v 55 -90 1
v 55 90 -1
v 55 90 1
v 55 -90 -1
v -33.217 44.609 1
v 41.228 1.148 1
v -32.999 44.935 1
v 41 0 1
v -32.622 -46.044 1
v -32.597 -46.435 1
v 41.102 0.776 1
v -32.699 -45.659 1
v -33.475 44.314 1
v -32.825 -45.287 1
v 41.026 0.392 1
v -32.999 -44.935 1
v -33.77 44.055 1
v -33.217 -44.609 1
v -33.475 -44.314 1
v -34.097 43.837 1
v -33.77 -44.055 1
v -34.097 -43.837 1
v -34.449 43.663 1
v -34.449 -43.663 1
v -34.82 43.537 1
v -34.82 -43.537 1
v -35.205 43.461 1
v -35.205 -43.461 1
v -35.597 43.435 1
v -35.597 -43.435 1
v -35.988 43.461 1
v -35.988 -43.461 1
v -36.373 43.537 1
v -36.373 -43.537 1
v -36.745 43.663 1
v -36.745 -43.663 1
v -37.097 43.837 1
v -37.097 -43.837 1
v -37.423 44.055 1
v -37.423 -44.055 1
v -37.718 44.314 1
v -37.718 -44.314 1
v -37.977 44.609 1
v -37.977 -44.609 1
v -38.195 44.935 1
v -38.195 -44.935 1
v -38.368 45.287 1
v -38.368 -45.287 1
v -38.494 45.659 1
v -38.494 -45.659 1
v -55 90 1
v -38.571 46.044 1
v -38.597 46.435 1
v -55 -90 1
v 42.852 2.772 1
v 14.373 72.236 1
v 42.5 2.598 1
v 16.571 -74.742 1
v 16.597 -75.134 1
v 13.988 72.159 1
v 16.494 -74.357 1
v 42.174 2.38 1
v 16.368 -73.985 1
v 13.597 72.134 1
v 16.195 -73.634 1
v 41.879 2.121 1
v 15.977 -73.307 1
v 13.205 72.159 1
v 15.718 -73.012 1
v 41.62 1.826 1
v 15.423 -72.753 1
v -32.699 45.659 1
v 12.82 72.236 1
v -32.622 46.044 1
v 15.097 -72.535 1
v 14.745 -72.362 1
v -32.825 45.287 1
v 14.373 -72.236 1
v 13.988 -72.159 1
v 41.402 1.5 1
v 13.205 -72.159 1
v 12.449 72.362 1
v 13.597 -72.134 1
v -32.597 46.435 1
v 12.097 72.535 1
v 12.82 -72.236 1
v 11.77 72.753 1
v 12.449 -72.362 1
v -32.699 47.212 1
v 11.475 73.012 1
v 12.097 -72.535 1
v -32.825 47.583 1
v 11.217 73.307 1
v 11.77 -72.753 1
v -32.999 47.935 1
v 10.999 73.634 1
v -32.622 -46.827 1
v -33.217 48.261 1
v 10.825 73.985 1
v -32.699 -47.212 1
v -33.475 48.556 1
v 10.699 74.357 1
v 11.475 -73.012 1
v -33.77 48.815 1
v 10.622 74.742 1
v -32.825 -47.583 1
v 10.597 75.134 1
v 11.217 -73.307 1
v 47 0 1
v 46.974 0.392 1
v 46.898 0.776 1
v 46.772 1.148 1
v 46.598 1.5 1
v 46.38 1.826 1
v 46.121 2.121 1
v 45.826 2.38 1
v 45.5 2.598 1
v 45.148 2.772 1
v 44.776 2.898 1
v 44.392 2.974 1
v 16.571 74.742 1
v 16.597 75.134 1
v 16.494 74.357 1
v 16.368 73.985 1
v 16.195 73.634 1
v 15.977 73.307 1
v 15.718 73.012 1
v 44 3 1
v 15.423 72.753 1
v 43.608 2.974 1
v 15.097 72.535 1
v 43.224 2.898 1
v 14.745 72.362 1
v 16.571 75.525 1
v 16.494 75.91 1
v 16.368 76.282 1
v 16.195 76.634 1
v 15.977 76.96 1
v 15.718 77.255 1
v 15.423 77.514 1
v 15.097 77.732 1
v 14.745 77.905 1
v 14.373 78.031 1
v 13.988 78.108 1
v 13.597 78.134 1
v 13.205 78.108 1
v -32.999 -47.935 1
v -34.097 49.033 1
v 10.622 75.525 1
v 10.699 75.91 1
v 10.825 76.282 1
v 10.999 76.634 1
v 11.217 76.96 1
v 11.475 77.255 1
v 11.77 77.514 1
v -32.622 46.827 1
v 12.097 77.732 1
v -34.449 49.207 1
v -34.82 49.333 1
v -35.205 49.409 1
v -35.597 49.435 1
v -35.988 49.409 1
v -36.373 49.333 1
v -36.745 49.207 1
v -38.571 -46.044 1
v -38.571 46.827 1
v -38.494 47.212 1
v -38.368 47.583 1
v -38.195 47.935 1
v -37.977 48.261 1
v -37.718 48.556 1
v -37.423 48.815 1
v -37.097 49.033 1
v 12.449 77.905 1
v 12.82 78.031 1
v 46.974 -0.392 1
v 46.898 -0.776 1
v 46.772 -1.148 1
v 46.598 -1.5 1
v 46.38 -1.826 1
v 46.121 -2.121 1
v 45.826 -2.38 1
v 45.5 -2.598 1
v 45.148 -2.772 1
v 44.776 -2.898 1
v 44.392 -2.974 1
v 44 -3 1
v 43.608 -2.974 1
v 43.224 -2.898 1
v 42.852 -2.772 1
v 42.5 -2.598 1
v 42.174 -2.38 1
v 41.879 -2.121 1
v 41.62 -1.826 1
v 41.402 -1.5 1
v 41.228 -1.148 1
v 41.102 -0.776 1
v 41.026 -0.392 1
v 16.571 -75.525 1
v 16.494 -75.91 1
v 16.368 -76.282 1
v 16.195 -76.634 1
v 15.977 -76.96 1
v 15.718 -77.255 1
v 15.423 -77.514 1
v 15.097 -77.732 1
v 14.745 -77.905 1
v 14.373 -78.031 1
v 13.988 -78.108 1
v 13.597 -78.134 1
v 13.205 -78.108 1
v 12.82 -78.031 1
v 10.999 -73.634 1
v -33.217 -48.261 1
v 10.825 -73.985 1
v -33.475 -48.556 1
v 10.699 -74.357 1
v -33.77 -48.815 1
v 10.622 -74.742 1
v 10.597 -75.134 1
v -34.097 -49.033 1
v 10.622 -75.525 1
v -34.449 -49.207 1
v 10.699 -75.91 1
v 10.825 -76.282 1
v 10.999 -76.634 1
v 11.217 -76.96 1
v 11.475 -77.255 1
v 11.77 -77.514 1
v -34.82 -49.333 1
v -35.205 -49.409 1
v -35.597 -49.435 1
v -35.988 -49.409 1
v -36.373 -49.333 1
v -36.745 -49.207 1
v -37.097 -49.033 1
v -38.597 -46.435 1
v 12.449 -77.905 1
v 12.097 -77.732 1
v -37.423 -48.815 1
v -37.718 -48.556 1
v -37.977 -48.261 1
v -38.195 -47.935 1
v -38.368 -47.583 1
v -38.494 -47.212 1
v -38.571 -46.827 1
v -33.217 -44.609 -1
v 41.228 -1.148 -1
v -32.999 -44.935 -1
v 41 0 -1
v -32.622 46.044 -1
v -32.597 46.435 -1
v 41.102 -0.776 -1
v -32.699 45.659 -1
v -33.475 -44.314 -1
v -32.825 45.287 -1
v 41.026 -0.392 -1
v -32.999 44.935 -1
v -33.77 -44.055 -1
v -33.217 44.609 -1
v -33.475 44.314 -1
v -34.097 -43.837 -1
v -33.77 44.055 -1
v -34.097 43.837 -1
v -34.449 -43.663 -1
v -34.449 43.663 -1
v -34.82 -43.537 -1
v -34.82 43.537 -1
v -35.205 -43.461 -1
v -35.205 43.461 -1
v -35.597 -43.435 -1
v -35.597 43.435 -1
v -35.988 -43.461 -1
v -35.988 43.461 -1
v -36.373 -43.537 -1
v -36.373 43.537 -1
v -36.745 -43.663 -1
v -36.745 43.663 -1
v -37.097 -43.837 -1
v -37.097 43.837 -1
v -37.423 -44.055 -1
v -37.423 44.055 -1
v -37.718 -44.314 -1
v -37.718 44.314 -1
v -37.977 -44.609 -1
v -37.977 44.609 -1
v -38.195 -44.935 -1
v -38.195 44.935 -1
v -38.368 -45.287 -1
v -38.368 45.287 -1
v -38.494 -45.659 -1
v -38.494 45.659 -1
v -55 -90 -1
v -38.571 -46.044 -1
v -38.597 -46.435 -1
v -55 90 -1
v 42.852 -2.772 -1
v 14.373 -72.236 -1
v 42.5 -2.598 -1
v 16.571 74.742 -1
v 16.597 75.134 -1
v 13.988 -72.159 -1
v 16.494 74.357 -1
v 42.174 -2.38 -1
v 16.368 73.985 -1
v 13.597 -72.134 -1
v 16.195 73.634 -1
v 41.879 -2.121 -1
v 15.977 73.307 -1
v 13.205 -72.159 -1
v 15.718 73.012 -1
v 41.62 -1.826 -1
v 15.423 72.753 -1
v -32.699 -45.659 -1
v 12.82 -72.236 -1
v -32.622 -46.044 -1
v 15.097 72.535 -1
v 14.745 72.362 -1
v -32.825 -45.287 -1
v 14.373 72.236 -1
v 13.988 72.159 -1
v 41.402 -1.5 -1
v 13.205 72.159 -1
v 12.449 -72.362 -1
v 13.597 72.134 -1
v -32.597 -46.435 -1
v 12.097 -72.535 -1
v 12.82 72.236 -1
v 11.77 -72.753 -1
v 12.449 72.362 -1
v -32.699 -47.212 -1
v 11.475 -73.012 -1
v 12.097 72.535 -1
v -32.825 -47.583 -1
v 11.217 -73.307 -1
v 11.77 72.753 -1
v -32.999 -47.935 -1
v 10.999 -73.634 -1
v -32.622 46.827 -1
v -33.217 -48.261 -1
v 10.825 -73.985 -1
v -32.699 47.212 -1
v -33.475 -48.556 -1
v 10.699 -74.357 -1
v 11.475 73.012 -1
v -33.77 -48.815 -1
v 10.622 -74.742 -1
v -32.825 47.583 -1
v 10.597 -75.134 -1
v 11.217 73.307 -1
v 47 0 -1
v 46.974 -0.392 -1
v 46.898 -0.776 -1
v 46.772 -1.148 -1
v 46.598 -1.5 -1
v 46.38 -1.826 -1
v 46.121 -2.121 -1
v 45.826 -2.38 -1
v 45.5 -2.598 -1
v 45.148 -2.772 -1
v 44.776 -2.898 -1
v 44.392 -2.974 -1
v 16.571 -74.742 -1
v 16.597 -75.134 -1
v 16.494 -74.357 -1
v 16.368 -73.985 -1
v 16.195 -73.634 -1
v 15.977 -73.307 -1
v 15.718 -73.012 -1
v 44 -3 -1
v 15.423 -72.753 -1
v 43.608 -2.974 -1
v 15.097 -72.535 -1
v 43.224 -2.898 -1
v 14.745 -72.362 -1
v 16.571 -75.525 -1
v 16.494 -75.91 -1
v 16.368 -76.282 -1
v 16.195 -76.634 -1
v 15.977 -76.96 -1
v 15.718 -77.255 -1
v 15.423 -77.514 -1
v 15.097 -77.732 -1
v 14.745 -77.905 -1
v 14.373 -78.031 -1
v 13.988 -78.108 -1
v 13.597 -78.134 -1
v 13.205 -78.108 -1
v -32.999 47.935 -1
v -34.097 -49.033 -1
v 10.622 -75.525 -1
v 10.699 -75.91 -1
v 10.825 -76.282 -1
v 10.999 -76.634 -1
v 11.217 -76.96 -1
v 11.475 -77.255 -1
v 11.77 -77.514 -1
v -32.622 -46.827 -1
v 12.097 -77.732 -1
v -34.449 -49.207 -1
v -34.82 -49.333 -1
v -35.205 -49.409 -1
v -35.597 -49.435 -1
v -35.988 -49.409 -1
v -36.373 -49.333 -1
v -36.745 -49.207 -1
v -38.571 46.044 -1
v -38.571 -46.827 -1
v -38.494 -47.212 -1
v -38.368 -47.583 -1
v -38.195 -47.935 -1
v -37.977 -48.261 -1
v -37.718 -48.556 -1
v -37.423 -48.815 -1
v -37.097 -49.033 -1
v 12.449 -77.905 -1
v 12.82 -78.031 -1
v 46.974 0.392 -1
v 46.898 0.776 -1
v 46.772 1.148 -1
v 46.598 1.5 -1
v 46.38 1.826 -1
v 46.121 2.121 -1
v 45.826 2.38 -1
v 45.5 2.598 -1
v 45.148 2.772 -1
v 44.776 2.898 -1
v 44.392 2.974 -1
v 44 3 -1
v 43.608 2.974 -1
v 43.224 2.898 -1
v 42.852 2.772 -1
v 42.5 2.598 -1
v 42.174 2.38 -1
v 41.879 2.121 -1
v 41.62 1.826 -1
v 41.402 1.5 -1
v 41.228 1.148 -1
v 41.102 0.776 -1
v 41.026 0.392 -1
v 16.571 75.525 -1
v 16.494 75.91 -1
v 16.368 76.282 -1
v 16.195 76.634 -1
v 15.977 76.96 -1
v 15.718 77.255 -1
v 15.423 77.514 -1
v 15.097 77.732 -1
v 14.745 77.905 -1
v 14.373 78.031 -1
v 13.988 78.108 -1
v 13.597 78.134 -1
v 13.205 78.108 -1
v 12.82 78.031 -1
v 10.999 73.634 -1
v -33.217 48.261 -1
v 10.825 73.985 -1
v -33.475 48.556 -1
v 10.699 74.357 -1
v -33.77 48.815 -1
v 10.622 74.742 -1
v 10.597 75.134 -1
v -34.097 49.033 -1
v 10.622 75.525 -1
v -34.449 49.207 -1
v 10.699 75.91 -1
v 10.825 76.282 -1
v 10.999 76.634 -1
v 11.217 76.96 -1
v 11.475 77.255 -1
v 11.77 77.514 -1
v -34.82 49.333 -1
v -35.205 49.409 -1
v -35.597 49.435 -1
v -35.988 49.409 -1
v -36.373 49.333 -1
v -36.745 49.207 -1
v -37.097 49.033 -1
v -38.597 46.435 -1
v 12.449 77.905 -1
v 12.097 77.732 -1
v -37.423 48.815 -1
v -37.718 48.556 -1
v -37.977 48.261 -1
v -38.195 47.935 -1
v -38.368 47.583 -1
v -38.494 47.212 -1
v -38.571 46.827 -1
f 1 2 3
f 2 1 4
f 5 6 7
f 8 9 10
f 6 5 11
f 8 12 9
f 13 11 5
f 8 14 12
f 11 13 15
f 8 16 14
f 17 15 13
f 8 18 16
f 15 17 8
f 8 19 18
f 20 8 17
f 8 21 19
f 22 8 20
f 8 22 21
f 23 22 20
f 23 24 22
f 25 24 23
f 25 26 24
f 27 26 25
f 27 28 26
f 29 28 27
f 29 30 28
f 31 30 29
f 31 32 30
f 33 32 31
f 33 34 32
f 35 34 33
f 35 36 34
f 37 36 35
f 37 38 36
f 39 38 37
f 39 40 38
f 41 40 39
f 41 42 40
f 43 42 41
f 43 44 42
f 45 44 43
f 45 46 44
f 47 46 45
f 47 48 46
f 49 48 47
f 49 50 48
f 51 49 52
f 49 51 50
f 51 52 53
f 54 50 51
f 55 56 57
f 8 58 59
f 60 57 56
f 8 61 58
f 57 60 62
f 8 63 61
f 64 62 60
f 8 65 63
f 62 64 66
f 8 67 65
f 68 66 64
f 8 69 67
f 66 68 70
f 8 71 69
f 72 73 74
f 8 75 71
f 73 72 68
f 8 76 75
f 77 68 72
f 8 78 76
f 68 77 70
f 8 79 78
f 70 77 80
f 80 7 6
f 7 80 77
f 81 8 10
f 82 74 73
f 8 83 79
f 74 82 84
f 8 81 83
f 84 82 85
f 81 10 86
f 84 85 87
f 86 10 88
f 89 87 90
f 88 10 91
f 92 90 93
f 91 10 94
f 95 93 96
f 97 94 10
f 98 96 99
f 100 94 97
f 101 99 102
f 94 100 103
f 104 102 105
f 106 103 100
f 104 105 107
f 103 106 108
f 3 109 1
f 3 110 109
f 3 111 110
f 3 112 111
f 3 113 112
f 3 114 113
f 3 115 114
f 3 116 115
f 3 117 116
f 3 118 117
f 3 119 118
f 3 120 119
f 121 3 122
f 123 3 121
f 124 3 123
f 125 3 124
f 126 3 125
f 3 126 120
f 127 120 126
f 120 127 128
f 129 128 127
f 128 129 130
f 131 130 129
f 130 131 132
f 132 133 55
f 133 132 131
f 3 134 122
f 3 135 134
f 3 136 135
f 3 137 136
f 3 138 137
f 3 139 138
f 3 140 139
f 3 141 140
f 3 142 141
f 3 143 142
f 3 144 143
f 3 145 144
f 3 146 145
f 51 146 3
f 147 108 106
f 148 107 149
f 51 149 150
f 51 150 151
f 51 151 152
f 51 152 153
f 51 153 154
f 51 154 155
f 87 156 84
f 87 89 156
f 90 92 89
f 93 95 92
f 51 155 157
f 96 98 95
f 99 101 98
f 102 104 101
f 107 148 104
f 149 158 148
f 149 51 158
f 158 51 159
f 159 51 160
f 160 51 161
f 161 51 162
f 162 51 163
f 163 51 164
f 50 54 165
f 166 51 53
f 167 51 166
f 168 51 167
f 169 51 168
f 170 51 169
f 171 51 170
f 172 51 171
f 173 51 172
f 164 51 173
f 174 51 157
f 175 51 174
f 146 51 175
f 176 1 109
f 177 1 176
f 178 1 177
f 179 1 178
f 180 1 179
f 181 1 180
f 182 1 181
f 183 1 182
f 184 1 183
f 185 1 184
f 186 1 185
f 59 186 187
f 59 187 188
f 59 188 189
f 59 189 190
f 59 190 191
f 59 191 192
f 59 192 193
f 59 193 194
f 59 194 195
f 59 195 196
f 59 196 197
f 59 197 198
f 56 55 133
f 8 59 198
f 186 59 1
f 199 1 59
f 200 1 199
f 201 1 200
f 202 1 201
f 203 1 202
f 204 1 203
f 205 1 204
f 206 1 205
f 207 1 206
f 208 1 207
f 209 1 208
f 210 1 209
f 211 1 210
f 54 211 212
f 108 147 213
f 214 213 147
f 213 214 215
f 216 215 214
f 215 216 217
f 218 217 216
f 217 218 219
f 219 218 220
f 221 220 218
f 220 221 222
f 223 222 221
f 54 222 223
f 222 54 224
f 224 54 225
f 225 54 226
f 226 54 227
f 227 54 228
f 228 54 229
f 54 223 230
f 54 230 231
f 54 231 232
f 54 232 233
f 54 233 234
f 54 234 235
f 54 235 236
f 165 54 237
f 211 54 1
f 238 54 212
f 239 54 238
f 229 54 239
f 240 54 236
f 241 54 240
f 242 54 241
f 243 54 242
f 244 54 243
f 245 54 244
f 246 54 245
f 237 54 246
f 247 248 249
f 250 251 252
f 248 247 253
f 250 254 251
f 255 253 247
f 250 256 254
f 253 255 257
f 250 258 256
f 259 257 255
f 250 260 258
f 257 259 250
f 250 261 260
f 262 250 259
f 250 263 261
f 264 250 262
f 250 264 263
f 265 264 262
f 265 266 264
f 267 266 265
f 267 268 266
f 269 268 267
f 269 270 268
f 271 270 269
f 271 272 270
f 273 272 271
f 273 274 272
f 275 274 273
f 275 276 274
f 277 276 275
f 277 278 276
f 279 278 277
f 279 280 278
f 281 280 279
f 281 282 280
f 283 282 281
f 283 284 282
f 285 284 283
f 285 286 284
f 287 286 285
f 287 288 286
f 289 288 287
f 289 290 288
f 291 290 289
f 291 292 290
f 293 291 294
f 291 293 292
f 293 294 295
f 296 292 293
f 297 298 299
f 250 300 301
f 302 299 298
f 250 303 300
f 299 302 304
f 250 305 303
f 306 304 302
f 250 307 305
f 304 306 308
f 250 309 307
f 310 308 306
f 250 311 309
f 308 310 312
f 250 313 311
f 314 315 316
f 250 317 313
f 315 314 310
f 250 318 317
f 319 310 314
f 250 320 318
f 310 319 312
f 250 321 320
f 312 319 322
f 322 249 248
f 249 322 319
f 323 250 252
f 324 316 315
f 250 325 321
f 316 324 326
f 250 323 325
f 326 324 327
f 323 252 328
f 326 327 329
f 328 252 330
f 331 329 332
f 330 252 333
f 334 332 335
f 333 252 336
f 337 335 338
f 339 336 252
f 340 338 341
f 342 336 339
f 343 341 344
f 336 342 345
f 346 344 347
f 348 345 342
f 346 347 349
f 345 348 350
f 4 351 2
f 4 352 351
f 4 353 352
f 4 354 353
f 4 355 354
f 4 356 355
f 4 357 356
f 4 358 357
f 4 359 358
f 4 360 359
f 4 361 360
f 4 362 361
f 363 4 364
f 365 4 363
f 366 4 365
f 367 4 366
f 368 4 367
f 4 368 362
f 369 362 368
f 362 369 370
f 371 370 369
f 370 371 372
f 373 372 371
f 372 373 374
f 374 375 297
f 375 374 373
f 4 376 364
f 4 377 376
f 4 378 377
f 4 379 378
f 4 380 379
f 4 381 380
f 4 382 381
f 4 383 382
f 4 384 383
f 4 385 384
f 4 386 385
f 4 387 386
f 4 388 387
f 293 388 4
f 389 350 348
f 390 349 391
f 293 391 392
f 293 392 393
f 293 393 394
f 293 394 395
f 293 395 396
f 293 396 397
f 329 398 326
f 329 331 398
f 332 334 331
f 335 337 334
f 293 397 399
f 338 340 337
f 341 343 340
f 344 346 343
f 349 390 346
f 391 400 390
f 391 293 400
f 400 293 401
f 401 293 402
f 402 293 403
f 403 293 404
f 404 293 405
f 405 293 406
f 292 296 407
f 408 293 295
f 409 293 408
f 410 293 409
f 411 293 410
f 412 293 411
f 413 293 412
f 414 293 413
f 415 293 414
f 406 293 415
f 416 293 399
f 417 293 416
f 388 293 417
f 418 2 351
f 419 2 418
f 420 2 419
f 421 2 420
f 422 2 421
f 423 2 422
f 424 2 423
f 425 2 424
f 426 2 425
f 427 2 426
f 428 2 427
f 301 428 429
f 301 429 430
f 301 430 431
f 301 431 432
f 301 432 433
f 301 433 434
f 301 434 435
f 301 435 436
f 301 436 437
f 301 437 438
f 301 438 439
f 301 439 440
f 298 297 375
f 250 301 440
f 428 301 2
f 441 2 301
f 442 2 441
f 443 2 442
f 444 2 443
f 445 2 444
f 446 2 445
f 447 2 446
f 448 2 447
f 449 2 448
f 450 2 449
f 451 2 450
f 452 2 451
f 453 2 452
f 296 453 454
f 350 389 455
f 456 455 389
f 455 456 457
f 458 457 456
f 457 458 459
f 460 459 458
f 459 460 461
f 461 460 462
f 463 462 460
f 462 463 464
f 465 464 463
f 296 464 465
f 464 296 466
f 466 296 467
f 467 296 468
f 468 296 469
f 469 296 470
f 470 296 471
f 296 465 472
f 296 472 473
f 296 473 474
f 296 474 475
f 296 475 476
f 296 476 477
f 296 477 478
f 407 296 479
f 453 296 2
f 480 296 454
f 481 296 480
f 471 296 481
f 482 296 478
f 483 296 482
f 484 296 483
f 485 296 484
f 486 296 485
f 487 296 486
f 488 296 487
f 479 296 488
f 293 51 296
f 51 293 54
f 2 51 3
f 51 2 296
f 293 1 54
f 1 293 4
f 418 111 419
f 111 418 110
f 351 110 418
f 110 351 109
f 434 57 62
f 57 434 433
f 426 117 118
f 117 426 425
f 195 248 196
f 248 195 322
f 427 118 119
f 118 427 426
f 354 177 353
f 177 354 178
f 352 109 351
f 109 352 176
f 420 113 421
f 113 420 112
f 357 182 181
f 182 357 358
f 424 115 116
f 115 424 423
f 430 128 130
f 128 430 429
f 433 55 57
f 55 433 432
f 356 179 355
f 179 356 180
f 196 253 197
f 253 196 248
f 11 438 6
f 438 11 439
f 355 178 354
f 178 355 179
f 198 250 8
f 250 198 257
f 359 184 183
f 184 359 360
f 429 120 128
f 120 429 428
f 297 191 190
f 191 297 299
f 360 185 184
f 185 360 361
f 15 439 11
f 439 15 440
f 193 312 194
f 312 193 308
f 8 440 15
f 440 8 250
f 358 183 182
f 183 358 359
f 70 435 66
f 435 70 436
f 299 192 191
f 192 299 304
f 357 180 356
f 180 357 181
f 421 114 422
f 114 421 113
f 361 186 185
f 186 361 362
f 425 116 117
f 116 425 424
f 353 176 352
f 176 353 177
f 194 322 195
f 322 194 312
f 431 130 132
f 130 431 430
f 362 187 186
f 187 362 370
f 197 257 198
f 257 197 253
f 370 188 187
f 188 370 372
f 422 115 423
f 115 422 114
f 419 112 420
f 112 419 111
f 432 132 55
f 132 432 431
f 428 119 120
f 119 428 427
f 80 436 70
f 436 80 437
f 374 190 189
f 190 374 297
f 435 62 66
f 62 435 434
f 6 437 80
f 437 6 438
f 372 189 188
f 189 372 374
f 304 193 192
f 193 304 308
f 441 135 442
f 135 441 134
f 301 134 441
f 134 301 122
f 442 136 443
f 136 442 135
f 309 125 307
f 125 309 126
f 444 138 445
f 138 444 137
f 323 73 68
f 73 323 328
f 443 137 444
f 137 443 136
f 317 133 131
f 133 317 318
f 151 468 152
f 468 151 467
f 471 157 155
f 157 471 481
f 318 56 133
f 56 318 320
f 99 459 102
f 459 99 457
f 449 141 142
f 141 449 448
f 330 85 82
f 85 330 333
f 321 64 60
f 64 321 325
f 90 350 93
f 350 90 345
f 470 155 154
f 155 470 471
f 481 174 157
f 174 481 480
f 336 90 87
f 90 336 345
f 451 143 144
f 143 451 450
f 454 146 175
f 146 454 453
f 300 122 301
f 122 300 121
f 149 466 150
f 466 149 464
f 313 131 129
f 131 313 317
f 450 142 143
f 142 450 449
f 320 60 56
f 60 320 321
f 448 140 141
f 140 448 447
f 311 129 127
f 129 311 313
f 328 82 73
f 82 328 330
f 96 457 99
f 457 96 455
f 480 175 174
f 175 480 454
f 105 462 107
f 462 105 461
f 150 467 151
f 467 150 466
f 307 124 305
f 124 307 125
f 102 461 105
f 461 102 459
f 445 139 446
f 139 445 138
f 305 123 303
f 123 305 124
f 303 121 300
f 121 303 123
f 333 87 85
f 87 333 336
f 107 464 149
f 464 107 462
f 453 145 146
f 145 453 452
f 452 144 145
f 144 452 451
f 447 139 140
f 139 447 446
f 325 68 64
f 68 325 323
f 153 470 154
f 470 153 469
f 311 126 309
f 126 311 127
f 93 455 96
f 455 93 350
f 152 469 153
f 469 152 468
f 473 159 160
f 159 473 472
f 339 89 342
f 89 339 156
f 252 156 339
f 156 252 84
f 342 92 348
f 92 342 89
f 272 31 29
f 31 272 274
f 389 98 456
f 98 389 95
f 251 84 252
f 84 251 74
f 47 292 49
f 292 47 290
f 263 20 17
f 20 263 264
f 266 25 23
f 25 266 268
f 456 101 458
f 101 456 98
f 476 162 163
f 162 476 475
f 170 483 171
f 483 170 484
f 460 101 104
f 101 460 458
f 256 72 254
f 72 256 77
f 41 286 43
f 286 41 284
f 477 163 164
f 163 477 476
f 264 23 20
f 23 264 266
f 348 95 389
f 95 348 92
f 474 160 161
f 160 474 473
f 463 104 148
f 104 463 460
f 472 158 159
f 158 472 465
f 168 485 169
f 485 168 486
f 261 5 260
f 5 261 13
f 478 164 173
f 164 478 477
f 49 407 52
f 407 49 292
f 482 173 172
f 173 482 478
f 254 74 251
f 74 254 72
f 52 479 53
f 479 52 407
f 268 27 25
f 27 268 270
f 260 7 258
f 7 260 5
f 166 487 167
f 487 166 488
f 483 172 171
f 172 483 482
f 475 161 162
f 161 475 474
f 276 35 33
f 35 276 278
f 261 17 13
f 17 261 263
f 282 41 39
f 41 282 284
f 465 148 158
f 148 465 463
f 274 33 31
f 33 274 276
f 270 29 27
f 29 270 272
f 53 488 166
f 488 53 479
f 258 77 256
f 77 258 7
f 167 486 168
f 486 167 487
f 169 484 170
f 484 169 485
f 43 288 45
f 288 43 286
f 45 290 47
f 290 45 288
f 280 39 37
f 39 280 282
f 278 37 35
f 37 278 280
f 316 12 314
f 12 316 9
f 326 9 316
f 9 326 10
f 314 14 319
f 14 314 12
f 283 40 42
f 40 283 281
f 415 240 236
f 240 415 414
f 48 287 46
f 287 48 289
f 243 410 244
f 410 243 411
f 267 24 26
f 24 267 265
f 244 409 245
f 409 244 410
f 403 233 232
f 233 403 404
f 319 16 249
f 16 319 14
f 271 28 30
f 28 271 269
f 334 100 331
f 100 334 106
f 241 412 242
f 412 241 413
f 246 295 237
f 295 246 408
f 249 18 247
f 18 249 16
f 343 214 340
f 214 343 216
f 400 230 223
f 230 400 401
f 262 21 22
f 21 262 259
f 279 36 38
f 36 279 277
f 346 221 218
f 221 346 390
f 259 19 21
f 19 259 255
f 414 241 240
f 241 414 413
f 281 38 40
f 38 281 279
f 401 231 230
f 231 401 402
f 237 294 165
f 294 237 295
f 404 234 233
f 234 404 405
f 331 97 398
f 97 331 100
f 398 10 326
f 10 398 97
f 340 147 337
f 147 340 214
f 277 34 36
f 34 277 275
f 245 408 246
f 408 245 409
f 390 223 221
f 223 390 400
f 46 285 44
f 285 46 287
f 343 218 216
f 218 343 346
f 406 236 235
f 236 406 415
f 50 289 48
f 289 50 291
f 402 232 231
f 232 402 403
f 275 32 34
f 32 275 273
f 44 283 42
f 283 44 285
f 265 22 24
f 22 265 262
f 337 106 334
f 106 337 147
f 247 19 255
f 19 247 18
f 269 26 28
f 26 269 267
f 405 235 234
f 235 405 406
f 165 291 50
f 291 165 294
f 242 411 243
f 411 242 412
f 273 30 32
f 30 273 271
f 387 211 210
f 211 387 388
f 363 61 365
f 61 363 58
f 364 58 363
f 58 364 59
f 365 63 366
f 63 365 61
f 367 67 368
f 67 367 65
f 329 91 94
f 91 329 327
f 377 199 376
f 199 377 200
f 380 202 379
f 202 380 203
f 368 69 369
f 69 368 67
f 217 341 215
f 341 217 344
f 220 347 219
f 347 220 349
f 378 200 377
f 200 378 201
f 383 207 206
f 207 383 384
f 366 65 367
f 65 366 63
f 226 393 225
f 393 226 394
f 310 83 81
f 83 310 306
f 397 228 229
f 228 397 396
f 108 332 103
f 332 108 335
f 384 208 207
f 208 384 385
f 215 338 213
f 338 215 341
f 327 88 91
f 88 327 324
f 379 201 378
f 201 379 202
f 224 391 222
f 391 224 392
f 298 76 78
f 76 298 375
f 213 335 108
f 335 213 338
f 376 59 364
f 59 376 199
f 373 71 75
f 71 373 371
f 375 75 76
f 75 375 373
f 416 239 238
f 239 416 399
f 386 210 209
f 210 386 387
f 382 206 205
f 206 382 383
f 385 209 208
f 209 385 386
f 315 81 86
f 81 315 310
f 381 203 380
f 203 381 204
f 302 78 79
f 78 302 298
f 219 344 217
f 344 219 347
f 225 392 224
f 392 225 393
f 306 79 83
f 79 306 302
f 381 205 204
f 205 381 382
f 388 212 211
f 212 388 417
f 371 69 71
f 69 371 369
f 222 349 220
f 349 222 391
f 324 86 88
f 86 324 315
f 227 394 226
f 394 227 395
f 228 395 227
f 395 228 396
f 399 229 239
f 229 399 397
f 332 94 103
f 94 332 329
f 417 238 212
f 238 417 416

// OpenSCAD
// ========================================
// a 11 x 18 x 0.2 cm plate with five 0.6 cm holes
// NeuroCAD canonical IR; dimensions are millimetres
// ========================================
$fn = 48;

difference() {
  cube(size=[110, 180, 2], center=true);
  translate([44, 0, 0]) {
    cylinder(r=3, h=4, center=true);
  }
  translate([13.5967477524977, 75.1334647873171, 0]) {
    cylinder(r=3, h=4, center=true);
  }
  translate([-35.5967477524977, 46.4350349311054, 0]) {
    cylinder(r=3, h=4, center=true);
  }
  translate([-35.5967477524977, -46.4350349311054, 0]) {
    cylinder(r=3, h=4, center=true);
  }
  translate([13.5967477524977, -75.1334647873171, 0]) {
    cylinder(r=3, h=4, center=true);
  }
}
